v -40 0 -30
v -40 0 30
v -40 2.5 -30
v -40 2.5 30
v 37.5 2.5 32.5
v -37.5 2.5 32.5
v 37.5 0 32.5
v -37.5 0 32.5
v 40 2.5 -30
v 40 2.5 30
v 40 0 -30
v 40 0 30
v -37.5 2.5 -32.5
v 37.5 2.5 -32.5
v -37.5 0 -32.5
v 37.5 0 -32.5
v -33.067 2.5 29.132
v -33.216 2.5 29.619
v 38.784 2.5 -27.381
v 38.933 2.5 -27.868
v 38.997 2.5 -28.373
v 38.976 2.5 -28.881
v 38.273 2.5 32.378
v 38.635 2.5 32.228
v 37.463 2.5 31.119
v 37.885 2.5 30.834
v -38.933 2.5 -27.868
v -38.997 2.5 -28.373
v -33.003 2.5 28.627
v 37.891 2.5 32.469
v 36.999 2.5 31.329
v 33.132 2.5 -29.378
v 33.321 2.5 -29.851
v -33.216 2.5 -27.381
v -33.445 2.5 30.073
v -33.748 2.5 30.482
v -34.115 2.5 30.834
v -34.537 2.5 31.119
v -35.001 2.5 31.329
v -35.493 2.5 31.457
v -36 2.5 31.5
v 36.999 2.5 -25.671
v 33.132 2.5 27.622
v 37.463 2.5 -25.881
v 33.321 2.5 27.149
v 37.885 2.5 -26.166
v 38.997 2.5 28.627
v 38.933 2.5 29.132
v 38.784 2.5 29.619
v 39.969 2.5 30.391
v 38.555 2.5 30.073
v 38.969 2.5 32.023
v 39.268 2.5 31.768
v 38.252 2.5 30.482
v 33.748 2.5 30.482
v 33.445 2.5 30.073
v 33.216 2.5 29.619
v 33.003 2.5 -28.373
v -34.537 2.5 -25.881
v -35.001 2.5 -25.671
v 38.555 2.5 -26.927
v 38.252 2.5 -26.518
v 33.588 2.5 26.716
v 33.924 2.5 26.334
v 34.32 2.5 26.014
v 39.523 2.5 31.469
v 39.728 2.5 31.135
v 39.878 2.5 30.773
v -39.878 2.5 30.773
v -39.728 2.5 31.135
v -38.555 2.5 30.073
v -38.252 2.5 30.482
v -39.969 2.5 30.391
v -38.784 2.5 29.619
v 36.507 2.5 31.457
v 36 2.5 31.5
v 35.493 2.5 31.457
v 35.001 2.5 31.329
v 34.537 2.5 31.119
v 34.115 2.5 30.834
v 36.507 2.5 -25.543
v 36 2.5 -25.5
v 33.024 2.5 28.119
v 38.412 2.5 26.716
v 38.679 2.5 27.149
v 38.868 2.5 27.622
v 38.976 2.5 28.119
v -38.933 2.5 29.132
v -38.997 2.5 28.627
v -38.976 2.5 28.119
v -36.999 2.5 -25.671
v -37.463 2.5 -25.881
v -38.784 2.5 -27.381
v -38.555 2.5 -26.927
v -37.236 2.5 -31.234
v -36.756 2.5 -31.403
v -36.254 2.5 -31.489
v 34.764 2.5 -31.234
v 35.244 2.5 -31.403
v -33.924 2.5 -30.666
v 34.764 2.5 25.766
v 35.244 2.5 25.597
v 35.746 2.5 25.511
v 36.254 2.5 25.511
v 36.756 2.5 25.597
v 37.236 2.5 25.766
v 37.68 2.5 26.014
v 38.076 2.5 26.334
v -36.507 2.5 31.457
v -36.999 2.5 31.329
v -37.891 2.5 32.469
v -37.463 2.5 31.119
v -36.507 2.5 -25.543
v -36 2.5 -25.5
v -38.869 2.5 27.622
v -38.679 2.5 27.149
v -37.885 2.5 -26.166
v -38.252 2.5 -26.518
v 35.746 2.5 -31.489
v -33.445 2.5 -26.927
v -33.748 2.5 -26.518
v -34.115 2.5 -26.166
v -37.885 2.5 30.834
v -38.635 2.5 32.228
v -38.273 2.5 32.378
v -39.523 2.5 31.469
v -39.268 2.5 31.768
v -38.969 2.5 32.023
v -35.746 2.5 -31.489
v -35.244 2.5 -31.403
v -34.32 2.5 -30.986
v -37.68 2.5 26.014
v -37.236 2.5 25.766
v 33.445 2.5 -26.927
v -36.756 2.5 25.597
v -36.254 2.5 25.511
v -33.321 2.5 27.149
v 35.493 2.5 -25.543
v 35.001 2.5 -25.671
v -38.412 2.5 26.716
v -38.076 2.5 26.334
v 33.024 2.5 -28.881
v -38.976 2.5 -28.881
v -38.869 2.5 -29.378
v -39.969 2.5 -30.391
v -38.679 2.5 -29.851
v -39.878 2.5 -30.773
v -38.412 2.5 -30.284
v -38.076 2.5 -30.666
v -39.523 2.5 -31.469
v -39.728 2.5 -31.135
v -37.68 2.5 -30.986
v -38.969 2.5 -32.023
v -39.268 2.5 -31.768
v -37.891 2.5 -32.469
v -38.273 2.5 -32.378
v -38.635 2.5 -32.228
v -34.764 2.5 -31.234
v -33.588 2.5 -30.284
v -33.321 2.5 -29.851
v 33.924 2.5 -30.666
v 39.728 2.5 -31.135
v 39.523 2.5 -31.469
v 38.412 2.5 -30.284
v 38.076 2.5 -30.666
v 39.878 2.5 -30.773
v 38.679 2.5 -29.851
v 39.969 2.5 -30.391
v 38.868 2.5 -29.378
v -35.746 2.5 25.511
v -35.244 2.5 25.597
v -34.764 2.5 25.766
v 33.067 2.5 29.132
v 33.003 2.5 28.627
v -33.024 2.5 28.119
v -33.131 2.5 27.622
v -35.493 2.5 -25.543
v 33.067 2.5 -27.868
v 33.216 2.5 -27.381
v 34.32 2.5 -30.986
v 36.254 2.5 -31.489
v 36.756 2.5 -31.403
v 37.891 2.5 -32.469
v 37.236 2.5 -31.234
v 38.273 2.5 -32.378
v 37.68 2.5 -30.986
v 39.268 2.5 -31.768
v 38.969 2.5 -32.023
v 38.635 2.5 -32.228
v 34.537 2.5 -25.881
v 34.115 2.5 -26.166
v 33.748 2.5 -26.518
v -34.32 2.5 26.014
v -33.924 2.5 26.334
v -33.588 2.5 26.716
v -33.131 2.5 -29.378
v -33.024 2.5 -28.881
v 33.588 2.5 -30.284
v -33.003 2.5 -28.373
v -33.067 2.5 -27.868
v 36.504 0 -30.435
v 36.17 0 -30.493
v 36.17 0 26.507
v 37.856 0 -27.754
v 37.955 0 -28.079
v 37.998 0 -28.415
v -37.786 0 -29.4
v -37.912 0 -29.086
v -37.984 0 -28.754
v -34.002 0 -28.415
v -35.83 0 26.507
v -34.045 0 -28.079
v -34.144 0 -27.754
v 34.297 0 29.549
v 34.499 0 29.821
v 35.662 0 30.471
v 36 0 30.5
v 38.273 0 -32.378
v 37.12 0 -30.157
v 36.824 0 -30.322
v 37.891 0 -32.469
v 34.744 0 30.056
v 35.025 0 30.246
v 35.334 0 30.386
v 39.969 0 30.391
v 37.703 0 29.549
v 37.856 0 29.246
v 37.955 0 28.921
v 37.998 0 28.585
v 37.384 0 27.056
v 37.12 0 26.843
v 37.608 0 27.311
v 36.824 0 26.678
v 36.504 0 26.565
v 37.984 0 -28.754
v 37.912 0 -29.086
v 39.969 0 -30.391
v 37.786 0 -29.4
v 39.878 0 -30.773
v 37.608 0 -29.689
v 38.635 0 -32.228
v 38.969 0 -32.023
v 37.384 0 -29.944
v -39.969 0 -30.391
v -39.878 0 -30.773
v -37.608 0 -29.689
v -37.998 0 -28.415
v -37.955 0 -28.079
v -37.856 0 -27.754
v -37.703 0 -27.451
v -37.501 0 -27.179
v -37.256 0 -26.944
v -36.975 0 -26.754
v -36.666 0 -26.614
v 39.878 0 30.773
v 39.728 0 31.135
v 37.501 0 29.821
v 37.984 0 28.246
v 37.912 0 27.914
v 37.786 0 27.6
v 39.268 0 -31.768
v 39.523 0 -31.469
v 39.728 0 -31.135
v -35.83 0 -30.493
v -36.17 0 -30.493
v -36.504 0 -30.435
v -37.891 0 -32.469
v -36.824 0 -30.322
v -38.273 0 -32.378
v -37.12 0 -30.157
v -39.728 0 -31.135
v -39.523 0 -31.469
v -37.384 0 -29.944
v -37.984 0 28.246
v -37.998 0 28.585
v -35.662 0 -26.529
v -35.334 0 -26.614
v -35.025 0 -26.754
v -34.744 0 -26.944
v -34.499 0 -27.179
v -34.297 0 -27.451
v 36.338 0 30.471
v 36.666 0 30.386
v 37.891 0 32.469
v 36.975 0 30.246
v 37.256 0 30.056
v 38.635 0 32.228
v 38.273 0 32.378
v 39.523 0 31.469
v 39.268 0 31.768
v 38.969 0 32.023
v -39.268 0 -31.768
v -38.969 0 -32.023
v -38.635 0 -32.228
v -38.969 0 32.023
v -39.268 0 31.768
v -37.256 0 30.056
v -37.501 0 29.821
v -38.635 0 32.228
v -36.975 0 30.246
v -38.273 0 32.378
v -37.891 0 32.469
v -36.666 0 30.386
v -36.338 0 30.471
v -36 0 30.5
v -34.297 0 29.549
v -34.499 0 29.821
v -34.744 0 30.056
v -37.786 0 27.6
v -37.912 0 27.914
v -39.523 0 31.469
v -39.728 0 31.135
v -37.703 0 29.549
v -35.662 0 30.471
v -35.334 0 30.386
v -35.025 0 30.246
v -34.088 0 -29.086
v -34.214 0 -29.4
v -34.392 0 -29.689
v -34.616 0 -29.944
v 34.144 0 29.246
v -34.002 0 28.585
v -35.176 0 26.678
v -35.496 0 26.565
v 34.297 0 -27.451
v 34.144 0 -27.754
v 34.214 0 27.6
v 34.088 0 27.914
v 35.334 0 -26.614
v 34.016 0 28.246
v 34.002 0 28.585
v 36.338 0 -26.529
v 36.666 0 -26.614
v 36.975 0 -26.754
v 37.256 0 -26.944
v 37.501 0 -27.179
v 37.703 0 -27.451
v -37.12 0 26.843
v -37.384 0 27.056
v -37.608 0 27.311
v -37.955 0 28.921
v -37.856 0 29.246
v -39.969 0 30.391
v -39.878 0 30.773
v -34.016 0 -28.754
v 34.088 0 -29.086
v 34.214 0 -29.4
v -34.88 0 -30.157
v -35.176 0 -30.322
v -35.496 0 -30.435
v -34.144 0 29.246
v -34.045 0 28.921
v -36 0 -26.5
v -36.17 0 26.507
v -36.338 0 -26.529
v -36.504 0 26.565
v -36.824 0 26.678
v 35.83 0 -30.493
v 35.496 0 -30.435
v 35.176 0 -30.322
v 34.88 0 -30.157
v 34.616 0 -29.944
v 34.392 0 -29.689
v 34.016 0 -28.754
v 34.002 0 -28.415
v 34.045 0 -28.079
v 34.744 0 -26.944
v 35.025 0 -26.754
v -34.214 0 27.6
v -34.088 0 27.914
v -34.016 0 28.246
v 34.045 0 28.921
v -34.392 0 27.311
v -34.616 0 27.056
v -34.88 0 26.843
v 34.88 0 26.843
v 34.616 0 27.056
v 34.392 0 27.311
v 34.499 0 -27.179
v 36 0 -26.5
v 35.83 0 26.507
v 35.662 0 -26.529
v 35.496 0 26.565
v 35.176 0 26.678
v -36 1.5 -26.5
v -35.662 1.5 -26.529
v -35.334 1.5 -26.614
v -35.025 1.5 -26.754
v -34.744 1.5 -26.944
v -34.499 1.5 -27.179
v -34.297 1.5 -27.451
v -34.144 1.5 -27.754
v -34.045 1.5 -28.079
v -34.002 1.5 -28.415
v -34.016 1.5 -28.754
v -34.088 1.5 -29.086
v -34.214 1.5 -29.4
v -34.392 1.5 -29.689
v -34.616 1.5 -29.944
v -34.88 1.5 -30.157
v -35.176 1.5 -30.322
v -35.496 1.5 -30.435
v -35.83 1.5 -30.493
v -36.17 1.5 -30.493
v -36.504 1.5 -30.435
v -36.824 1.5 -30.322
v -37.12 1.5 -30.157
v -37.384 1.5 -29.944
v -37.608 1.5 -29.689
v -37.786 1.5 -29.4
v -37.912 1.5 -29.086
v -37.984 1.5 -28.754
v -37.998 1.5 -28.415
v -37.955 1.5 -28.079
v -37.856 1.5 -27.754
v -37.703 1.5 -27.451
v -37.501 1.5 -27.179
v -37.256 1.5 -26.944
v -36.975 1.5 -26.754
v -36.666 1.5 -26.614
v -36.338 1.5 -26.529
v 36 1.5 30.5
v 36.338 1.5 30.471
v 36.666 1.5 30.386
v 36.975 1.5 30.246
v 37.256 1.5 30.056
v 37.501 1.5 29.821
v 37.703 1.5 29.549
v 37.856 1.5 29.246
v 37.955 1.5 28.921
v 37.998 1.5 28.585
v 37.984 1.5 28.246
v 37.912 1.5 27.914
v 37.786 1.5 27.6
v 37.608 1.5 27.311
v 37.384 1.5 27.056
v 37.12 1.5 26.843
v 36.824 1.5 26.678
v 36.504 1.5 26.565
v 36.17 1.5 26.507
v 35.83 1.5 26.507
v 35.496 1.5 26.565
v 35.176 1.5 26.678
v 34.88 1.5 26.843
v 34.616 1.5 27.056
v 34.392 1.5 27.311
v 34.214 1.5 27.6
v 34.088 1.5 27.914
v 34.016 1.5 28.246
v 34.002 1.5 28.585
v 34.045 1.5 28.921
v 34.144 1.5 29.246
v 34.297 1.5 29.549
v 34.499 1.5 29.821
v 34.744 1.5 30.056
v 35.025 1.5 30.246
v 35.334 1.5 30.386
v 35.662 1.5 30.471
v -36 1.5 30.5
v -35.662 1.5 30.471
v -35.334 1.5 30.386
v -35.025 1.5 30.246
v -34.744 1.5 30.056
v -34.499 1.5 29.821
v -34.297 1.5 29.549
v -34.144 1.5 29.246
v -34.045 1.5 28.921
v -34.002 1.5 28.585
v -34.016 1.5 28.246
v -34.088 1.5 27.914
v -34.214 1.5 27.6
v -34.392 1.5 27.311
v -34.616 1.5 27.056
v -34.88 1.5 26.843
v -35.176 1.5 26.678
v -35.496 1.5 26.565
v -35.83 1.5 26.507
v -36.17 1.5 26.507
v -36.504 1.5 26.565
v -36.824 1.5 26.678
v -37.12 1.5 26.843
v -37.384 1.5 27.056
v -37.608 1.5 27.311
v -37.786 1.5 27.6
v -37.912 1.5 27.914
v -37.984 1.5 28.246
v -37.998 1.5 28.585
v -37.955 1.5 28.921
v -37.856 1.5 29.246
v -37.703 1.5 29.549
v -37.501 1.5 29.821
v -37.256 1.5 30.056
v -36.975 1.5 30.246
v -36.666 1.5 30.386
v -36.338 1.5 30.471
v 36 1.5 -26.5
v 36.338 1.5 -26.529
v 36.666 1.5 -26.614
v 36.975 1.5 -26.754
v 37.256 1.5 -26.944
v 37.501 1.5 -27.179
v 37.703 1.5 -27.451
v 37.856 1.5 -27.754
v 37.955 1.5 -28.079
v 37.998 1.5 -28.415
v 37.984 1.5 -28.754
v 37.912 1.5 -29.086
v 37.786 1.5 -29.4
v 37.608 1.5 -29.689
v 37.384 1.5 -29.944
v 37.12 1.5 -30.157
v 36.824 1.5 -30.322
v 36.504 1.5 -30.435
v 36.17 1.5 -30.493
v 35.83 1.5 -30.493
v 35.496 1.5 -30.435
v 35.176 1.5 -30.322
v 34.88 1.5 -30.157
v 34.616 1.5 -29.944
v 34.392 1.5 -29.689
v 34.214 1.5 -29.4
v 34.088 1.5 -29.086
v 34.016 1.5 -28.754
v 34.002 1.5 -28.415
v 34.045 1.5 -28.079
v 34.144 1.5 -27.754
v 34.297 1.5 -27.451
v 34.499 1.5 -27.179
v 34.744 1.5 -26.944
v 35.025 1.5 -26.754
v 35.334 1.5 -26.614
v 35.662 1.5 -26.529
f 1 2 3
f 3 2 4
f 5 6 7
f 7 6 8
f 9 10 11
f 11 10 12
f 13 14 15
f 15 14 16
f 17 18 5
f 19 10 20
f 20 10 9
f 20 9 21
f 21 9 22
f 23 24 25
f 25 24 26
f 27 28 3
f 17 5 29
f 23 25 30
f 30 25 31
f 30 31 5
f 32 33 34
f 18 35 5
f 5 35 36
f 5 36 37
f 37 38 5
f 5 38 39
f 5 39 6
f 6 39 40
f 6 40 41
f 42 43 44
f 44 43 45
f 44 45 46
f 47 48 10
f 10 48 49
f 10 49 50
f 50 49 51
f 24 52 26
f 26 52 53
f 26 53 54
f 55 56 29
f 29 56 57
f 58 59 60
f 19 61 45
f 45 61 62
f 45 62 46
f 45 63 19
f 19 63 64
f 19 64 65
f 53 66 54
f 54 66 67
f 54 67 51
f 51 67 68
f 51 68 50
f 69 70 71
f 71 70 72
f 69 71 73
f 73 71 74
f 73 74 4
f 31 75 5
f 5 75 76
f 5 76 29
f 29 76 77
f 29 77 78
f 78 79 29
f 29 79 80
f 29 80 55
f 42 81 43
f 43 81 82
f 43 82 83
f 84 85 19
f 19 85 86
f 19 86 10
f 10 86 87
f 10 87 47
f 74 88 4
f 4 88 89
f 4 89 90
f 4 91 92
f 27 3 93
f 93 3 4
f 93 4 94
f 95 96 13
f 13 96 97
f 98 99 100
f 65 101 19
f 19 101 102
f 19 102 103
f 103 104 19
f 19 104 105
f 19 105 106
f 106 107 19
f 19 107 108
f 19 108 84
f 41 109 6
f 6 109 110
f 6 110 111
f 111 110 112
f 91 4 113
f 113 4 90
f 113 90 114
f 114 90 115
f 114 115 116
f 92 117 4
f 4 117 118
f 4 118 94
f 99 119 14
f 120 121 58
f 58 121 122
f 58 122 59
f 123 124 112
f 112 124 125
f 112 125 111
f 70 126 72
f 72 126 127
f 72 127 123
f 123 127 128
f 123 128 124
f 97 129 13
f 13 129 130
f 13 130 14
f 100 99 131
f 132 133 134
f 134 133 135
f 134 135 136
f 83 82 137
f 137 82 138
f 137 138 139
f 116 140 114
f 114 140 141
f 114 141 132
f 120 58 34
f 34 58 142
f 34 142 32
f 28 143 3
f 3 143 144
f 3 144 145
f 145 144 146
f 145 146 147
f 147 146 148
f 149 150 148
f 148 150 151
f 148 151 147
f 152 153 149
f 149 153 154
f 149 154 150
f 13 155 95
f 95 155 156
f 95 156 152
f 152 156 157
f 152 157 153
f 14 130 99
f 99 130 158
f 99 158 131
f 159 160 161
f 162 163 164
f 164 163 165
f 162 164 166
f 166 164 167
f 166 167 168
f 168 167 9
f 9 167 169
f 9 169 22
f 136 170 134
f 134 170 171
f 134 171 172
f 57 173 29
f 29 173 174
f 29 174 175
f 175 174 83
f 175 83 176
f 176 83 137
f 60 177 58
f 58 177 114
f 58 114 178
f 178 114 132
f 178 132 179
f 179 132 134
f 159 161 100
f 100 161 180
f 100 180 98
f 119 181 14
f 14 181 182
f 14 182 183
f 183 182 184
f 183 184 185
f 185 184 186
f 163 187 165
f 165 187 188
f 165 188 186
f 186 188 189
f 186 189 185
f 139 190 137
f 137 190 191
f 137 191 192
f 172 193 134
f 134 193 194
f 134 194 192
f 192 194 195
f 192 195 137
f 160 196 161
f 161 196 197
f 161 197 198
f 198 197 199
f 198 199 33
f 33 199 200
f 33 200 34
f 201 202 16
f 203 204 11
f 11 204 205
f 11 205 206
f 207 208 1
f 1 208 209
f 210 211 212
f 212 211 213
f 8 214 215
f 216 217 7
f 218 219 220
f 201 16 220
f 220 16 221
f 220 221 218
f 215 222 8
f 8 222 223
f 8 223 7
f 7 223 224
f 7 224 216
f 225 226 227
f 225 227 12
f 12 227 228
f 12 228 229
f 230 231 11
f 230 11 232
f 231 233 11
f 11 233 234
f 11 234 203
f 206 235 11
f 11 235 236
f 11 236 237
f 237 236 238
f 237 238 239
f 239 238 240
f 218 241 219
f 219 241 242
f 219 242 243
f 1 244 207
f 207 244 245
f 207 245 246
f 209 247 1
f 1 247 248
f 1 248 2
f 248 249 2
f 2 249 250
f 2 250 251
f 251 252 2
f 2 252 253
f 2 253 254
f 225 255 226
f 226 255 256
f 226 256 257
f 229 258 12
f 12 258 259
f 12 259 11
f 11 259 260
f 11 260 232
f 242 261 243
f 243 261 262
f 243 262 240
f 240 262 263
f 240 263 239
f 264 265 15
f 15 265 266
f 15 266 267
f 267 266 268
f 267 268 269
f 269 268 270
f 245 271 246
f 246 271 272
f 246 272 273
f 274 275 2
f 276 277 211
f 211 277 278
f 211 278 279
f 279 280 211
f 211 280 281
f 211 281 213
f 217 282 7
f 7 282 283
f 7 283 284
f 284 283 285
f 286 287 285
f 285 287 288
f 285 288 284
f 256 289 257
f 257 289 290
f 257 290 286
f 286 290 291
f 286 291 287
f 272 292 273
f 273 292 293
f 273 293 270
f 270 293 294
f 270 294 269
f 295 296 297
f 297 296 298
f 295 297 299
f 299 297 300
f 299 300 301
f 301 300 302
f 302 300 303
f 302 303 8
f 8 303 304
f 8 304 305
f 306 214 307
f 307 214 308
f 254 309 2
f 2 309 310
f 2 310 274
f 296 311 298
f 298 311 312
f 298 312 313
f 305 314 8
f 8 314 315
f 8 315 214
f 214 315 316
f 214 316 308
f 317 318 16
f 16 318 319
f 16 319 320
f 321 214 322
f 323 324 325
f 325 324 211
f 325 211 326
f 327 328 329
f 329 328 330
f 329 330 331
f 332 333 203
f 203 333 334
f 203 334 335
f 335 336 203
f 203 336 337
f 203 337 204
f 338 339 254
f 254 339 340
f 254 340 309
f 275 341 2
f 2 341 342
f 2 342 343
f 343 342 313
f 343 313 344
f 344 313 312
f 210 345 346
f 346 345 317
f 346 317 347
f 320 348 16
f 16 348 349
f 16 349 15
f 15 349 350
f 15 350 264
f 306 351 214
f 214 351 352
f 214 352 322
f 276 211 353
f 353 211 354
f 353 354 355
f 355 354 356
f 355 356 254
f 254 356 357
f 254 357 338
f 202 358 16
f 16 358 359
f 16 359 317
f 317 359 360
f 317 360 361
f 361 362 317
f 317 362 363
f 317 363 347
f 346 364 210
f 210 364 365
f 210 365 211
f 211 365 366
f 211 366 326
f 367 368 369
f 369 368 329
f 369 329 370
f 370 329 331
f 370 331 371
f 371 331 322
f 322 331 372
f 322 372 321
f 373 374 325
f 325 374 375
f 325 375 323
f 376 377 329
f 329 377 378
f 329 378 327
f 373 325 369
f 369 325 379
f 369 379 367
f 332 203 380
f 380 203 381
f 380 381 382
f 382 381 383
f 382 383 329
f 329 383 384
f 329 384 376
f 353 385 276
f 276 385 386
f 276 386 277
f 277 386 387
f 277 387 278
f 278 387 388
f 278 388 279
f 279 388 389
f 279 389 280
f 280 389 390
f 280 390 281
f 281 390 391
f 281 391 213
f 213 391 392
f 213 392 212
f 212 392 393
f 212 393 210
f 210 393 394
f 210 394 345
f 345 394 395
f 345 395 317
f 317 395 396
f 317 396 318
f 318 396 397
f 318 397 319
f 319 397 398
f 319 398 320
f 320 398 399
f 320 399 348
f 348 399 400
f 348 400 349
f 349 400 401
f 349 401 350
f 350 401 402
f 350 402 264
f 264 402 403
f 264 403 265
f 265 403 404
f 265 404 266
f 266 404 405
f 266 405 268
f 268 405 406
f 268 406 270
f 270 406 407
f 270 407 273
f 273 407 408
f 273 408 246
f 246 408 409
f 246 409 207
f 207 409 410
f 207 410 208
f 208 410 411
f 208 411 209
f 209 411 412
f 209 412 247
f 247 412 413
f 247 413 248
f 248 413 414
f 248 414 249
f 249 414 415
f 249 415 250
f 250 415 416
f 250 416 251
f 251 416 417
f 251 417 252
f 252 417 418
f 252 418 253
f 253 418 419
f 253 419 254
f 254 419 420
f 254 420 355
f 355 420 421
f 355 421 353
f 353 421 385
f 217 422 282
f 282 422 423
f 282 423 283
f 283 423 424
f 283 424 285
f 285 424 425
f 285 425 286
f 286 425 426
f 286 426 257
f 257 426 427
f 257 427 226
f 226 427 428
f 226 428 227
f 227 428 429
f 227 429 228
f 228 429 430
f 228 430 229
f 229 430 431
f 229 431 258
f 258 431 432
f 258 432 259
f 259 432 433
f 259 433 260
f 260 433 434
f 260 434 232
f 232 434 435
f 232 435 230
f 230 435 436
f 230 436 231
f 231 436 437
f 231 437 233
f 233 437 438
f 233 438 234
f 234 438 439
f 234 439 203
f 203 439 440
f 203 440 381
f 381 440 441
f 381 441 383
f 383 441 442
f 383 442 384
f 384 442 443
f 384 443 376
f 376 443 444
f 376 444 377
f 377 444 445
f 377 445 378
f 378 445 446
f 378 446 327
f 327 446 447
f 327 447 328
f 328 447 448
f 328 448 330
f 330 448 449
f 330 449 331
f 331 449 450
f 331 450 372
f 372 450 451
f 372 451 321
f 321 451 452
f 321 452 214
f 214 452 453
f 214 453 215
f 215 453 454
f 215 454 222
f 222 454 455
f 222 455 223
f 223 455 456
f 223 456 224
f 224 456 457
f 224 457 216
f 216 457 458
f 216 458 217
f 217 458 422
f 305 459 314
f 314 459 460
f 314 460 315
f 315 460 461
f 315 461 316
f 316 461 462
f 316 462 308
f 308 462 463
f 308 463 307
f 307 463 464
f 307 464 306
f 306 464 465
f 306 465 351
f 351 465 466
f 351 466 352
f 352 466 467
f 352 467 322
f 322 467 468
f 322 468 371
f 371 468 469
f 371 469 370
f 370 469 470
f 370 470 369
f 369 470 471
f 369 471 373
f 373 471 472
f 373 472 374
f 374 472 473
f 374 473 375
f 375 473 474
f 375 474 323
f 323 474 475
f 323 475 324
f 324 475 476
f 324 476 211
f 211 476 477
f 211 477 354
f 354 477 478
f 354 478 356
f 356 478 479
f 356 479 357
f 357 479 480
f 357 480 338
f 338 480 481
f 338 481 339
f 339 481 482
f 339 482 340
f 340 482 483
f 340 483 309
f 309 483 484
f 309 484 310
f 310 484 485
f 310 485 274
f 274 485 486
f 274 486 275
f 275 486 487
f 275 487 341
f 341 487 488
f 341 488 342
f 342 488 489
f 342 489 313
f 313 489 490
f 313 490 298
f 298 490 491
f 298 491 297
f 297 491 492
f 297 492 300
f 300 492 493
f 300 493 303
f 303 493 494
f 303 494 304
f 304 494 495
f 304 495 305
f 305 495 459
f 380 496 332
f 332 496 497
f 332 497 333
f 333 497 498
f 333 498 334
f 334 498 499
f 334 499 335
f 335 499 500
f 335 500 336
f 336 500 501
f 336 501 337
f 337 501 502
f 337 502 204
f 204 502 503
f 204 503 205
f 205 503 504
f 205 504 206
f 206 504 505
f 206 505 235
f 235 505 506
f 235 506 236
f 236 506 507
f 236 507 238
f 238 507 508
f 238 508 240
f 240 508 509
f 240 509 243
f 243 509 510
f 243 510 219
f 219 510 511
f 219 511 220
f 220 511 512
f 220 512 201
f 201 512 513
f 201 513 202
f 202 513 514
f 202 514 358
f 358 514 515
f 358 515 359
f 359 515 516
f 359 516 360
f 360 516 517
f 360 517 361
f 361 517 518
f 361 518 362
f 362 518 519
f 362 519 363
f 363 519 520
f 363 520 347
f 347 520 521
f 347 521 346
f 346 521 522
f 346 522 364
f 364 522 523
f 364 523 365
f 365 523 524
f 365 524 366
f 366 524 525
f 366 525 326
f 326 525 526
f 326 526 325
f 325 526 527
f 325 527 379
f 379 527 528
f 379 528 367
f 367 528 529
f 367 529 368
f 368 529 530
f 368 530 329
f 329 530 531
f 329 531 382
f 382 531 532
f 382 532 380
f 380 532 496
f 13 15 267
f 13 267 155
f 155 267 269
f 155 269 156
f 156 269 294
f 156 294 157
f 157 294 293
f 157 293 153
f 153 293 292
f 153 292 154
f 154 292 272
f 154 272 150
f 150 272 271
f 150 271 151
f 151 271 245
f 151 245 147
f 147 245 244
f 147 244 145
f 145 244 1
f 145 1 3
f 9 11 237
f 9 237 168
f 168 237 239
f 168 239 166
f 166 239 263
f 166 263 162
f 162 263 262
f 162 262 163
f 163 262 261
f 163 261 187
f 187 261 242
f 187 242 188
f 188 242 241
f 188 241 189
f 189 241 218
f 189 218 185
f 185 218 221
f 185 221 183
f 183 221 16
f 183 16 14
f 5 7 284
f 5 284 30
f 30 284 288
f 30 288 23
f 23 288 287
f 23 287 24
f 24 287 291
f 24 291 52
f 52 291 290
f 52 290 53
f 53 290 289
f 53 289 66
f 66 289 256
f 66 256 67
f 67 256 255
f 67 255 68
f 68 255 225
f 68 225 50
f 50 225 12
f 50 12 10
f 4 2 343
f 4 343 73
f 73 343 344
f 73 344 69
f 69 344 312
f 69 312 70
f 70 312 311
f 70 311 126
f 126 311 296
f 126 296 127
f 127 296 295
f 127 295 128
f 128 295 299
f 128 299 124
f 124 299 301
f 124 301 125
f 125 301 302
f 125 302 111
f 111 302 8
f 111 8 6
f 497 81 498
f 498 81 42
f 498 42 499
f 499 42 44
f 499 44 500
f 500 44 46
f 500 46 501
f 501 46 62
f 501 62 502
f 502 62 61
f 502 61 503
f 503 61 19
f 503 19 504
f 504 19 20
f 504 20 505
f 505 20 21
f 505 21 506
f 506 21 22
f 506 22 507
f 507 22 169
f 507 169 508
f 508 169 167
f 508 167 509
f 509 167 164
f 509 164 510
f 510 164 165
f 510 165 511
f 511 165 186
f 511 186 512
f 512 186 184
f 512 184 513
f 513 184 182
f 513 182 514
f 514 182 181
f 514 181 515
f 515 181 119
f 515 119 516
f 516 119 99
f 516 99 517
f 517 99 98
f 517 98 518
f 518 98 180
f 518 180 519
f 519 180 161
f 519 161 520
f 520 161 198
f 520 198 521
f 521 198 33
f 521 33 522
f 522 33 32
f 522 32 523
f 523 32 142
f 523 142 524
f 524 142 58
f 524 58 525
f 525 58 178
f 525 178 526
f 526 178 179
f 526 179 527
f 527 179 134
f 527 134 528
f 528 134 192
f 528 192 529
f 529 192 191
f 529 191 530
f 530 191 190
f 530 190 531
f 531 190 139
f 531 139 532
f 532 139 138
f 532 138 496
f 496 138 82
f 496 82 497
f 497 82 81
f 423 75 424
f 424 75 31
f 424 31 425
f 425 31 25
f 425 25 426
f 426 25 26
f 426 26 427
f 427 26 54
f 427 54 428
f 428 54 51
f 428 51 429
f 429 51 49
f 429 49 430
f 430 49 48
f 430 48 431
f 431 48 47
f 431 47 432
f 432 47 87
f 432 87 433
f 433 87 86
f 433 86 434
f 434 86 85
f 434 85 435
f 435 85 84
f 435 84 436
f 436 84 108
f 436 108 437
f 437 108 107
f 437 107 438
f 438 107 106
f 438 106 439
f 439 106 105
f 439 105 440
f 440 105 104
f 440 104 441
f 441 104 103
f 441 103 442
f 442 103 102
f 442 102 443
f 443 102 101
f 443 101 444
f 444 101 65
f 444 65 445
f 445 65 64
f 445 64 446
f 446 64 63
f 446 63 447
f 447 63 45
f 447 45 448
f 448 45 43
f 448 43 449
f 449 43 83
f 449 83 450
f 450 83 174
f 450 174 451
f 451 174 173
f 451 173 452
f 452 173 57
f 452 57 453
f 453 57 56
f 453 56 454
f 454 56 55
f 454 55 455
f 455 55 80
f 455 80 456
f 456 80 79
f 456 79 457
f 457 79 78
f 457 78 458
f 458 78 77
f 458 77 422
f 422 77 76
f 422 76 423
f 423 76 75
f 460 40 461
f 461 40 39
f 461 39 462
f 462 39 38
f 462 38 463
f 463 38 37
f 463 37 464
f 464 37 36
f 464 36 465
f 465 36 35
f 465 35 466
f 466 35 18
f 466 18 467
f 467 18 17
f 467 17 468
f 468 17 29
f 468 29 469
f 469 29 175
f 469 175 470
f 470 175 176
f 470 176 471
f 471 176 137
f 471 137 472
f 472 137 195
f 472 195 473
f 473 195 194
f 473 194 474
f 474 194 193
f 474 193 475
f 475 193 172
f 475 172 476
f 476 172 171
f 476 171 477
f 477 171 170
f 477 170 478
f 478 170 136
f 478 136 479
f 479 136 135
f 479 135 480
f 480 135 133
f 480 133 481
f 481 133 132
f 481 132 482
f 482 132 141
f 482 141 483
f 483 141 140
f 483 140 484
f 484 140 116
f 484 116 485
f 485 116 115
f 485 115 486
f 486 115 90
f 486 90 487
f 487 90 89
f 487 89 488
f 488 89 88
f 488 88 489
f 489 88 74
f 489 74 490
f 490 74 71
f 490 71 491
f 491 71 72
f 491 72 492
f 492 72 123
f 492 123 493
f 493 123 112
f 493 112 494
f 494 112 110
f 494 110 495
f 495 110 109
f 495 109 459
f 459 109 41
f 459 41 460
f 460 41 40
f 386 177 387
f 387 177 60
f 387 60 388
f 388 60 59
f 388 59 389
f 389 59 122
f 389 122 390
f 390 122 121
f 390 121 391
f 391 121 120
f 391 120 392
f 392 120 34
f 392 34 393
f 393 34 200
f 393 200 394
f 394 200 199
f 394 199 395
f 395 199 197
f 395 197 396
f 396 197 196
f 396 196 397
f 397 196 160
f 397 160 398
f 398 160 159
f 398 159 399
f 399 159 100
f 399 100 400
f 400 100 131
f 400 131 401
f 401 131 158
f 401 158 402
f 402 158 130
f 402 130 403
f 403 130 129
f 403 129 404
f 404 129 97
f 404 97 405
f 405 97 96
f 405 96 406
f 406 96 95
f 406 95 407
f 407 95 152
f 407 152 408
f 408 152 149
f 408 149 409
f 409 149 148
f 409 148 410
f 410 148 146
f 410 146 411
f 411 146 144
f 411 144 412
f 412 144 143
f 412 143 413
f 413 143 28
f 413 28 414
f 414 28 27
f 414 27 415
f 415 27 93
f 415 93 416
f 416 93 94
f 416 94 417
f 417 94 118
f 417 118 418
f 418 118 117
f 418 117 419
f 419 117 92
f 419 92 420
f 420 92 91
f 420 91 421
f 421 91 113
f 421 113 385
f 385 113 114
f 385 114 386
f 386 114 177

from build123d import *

# Parameters (mm, degrees)
CROQUIS1_W              = 80
CROQUIS1_H              = 65
SALIENTE_EXTRUIR1_DEPTH = 2.5
CORTAR_EXTRUIR1_REACH   = 53.599
CROQUIS2_R              = 2
REDONDEO1_R             = 2.5
CHAFL_N1_SIZE           = 1


with BuildPart() as part:
    # Croquis1 → Saliente-Extruir1 (new body)
    with BuildSketch(Plane(origin=(0, 0, 0), x_dir=(1, 0, 0), z_dir=(0, 1, 0))):
        Rectangle(CROQUIS1_W, CROQUIS1_H)
    extrude(amount=SALIENTE_EXTRUIR1_DEPTH)

    # Croquis2 → Cortar-Extruir1 (cut, up to next)
    with BuildSketch(Plane(origin=(0, 2.5, 0), x_dir=(1, 0, 0), z_dir=(0, 1, 0)), mode=Mode.PRIVATE) as cortar_extruir1_sk1:
        with Locations(Location((-36, 28.5, 0), (0, 0, 270))):
            Circle(CROQUIS2_R)
    cortar_extruir1_tool1 = extrude(cortar_extruir1_sk1.sketch, amount=-CORTAR_EXTRUIR1_REACH, mode=Mode.PRIVATE) & part.part
    # Croquis2 → Cortar-Extruir1 (cut, up to next)
    with BuildSketch(Plane(origin=(0, 2.5, 0), x_dir=(1, 0, 0), z_dir=(0, 1, 0)), mode=Mode.PRIVATE) as cortar_extruir1_sk2:
        with Locations(Location((36, 28.5, 0), (0, 0, 270))):
            Circle(CROQUIS2_R)
    cortar_extruir1_tool2 = extrude(cortar_extruir1_sk2.sketch, amount=-CORTAR_EXTRUIR1_REACH, mode=Mode.PRIVATE) & part.part
    # Croquis2 → Cortar-Extruir1 (cut, up to next)
    with BuildSketch(Plane(origin=(0, 2.5, 0), x_dir=(1, 0, 0), z_dir=(0, 1, 0)), mode=Mode.PRIVATE) as cortar_extruir1_sk3:
        with Locations(Location((-36, -28.5, 0), (0, 0, 270))):
            Circle(CROQUIS2_R)
    cortar_extruir1_tool3 = extrude(cortar_extruir1_sk3.sketch, amount=-CORTAR_EXTRUIR1_REACH, mode=Mode.PRIVATE) & part.part
    # Croquis2 → Cortar-Extruir1 (cut, up to next)
    with BuildSketch(Plane(origin=(0, 2.5, 0), x_dir=(1, 0, 0), z_dir=(0, 1, 0)), mode=Mode.PRIVATE) as cortar_extruir1_sk4:
        with Locations(Location((36, -28.5, 0), (0, 0, 270))):
            Circle(CROQUIS2_R)
    cortar_extruir1_tool4 = extrude(cortar_extruir1_sk4.sketch, amount=-CORTAR_EXTRUIR1_REACH, mode=Mode.PRIVATE) & part.part
    add(cortar_extruir1_tool1.solids().sort_by_distance((-36, 2.5, -28.5))[0], mode=Mode.SUBTRACT)
    add(cortar_extruir1_tool2.solids().sort_by_distance((36, 2.5, -28.5))[0], mode=Mode.SUBTRACT)
    add(cortar_extruir1_tool3.solids().sort_by_distance((-36, 2.5, 28.5))[0], mode=Mode.SUBTRACT)
    add(cortar_extruir1_tool4.solids().sort_by_distance((36, 2.5, 28.5))[0], mode=Mode.SUBTRACT)

    # Redondeo1
    redondeo1_edges = [part.edges().sort_by_distance(p)[0] for p in [
        (-40, 1.25, -32.5),
        (40, 1.25, -32.5),
        (40, 1.25, 32.5),
        (-40, 1.25, 32.5),
    ]]
    fillet(redondeo1_edges, radius=REDONDEO1_R)

    # Chaflán1
    chafl_n1_edges = [part.edges().sort_by_distance(p)[0] for p in [
        (36, 2.5, -30.5),
        (-36, 2.5, 26.5),
        (36, 2.5, 26.5),
        (-36, 2.5, -30.5),
    ]]
    chamfer(chafl_n1_edges, length=CHAFL_N1_SIZE)


solid = part.part
